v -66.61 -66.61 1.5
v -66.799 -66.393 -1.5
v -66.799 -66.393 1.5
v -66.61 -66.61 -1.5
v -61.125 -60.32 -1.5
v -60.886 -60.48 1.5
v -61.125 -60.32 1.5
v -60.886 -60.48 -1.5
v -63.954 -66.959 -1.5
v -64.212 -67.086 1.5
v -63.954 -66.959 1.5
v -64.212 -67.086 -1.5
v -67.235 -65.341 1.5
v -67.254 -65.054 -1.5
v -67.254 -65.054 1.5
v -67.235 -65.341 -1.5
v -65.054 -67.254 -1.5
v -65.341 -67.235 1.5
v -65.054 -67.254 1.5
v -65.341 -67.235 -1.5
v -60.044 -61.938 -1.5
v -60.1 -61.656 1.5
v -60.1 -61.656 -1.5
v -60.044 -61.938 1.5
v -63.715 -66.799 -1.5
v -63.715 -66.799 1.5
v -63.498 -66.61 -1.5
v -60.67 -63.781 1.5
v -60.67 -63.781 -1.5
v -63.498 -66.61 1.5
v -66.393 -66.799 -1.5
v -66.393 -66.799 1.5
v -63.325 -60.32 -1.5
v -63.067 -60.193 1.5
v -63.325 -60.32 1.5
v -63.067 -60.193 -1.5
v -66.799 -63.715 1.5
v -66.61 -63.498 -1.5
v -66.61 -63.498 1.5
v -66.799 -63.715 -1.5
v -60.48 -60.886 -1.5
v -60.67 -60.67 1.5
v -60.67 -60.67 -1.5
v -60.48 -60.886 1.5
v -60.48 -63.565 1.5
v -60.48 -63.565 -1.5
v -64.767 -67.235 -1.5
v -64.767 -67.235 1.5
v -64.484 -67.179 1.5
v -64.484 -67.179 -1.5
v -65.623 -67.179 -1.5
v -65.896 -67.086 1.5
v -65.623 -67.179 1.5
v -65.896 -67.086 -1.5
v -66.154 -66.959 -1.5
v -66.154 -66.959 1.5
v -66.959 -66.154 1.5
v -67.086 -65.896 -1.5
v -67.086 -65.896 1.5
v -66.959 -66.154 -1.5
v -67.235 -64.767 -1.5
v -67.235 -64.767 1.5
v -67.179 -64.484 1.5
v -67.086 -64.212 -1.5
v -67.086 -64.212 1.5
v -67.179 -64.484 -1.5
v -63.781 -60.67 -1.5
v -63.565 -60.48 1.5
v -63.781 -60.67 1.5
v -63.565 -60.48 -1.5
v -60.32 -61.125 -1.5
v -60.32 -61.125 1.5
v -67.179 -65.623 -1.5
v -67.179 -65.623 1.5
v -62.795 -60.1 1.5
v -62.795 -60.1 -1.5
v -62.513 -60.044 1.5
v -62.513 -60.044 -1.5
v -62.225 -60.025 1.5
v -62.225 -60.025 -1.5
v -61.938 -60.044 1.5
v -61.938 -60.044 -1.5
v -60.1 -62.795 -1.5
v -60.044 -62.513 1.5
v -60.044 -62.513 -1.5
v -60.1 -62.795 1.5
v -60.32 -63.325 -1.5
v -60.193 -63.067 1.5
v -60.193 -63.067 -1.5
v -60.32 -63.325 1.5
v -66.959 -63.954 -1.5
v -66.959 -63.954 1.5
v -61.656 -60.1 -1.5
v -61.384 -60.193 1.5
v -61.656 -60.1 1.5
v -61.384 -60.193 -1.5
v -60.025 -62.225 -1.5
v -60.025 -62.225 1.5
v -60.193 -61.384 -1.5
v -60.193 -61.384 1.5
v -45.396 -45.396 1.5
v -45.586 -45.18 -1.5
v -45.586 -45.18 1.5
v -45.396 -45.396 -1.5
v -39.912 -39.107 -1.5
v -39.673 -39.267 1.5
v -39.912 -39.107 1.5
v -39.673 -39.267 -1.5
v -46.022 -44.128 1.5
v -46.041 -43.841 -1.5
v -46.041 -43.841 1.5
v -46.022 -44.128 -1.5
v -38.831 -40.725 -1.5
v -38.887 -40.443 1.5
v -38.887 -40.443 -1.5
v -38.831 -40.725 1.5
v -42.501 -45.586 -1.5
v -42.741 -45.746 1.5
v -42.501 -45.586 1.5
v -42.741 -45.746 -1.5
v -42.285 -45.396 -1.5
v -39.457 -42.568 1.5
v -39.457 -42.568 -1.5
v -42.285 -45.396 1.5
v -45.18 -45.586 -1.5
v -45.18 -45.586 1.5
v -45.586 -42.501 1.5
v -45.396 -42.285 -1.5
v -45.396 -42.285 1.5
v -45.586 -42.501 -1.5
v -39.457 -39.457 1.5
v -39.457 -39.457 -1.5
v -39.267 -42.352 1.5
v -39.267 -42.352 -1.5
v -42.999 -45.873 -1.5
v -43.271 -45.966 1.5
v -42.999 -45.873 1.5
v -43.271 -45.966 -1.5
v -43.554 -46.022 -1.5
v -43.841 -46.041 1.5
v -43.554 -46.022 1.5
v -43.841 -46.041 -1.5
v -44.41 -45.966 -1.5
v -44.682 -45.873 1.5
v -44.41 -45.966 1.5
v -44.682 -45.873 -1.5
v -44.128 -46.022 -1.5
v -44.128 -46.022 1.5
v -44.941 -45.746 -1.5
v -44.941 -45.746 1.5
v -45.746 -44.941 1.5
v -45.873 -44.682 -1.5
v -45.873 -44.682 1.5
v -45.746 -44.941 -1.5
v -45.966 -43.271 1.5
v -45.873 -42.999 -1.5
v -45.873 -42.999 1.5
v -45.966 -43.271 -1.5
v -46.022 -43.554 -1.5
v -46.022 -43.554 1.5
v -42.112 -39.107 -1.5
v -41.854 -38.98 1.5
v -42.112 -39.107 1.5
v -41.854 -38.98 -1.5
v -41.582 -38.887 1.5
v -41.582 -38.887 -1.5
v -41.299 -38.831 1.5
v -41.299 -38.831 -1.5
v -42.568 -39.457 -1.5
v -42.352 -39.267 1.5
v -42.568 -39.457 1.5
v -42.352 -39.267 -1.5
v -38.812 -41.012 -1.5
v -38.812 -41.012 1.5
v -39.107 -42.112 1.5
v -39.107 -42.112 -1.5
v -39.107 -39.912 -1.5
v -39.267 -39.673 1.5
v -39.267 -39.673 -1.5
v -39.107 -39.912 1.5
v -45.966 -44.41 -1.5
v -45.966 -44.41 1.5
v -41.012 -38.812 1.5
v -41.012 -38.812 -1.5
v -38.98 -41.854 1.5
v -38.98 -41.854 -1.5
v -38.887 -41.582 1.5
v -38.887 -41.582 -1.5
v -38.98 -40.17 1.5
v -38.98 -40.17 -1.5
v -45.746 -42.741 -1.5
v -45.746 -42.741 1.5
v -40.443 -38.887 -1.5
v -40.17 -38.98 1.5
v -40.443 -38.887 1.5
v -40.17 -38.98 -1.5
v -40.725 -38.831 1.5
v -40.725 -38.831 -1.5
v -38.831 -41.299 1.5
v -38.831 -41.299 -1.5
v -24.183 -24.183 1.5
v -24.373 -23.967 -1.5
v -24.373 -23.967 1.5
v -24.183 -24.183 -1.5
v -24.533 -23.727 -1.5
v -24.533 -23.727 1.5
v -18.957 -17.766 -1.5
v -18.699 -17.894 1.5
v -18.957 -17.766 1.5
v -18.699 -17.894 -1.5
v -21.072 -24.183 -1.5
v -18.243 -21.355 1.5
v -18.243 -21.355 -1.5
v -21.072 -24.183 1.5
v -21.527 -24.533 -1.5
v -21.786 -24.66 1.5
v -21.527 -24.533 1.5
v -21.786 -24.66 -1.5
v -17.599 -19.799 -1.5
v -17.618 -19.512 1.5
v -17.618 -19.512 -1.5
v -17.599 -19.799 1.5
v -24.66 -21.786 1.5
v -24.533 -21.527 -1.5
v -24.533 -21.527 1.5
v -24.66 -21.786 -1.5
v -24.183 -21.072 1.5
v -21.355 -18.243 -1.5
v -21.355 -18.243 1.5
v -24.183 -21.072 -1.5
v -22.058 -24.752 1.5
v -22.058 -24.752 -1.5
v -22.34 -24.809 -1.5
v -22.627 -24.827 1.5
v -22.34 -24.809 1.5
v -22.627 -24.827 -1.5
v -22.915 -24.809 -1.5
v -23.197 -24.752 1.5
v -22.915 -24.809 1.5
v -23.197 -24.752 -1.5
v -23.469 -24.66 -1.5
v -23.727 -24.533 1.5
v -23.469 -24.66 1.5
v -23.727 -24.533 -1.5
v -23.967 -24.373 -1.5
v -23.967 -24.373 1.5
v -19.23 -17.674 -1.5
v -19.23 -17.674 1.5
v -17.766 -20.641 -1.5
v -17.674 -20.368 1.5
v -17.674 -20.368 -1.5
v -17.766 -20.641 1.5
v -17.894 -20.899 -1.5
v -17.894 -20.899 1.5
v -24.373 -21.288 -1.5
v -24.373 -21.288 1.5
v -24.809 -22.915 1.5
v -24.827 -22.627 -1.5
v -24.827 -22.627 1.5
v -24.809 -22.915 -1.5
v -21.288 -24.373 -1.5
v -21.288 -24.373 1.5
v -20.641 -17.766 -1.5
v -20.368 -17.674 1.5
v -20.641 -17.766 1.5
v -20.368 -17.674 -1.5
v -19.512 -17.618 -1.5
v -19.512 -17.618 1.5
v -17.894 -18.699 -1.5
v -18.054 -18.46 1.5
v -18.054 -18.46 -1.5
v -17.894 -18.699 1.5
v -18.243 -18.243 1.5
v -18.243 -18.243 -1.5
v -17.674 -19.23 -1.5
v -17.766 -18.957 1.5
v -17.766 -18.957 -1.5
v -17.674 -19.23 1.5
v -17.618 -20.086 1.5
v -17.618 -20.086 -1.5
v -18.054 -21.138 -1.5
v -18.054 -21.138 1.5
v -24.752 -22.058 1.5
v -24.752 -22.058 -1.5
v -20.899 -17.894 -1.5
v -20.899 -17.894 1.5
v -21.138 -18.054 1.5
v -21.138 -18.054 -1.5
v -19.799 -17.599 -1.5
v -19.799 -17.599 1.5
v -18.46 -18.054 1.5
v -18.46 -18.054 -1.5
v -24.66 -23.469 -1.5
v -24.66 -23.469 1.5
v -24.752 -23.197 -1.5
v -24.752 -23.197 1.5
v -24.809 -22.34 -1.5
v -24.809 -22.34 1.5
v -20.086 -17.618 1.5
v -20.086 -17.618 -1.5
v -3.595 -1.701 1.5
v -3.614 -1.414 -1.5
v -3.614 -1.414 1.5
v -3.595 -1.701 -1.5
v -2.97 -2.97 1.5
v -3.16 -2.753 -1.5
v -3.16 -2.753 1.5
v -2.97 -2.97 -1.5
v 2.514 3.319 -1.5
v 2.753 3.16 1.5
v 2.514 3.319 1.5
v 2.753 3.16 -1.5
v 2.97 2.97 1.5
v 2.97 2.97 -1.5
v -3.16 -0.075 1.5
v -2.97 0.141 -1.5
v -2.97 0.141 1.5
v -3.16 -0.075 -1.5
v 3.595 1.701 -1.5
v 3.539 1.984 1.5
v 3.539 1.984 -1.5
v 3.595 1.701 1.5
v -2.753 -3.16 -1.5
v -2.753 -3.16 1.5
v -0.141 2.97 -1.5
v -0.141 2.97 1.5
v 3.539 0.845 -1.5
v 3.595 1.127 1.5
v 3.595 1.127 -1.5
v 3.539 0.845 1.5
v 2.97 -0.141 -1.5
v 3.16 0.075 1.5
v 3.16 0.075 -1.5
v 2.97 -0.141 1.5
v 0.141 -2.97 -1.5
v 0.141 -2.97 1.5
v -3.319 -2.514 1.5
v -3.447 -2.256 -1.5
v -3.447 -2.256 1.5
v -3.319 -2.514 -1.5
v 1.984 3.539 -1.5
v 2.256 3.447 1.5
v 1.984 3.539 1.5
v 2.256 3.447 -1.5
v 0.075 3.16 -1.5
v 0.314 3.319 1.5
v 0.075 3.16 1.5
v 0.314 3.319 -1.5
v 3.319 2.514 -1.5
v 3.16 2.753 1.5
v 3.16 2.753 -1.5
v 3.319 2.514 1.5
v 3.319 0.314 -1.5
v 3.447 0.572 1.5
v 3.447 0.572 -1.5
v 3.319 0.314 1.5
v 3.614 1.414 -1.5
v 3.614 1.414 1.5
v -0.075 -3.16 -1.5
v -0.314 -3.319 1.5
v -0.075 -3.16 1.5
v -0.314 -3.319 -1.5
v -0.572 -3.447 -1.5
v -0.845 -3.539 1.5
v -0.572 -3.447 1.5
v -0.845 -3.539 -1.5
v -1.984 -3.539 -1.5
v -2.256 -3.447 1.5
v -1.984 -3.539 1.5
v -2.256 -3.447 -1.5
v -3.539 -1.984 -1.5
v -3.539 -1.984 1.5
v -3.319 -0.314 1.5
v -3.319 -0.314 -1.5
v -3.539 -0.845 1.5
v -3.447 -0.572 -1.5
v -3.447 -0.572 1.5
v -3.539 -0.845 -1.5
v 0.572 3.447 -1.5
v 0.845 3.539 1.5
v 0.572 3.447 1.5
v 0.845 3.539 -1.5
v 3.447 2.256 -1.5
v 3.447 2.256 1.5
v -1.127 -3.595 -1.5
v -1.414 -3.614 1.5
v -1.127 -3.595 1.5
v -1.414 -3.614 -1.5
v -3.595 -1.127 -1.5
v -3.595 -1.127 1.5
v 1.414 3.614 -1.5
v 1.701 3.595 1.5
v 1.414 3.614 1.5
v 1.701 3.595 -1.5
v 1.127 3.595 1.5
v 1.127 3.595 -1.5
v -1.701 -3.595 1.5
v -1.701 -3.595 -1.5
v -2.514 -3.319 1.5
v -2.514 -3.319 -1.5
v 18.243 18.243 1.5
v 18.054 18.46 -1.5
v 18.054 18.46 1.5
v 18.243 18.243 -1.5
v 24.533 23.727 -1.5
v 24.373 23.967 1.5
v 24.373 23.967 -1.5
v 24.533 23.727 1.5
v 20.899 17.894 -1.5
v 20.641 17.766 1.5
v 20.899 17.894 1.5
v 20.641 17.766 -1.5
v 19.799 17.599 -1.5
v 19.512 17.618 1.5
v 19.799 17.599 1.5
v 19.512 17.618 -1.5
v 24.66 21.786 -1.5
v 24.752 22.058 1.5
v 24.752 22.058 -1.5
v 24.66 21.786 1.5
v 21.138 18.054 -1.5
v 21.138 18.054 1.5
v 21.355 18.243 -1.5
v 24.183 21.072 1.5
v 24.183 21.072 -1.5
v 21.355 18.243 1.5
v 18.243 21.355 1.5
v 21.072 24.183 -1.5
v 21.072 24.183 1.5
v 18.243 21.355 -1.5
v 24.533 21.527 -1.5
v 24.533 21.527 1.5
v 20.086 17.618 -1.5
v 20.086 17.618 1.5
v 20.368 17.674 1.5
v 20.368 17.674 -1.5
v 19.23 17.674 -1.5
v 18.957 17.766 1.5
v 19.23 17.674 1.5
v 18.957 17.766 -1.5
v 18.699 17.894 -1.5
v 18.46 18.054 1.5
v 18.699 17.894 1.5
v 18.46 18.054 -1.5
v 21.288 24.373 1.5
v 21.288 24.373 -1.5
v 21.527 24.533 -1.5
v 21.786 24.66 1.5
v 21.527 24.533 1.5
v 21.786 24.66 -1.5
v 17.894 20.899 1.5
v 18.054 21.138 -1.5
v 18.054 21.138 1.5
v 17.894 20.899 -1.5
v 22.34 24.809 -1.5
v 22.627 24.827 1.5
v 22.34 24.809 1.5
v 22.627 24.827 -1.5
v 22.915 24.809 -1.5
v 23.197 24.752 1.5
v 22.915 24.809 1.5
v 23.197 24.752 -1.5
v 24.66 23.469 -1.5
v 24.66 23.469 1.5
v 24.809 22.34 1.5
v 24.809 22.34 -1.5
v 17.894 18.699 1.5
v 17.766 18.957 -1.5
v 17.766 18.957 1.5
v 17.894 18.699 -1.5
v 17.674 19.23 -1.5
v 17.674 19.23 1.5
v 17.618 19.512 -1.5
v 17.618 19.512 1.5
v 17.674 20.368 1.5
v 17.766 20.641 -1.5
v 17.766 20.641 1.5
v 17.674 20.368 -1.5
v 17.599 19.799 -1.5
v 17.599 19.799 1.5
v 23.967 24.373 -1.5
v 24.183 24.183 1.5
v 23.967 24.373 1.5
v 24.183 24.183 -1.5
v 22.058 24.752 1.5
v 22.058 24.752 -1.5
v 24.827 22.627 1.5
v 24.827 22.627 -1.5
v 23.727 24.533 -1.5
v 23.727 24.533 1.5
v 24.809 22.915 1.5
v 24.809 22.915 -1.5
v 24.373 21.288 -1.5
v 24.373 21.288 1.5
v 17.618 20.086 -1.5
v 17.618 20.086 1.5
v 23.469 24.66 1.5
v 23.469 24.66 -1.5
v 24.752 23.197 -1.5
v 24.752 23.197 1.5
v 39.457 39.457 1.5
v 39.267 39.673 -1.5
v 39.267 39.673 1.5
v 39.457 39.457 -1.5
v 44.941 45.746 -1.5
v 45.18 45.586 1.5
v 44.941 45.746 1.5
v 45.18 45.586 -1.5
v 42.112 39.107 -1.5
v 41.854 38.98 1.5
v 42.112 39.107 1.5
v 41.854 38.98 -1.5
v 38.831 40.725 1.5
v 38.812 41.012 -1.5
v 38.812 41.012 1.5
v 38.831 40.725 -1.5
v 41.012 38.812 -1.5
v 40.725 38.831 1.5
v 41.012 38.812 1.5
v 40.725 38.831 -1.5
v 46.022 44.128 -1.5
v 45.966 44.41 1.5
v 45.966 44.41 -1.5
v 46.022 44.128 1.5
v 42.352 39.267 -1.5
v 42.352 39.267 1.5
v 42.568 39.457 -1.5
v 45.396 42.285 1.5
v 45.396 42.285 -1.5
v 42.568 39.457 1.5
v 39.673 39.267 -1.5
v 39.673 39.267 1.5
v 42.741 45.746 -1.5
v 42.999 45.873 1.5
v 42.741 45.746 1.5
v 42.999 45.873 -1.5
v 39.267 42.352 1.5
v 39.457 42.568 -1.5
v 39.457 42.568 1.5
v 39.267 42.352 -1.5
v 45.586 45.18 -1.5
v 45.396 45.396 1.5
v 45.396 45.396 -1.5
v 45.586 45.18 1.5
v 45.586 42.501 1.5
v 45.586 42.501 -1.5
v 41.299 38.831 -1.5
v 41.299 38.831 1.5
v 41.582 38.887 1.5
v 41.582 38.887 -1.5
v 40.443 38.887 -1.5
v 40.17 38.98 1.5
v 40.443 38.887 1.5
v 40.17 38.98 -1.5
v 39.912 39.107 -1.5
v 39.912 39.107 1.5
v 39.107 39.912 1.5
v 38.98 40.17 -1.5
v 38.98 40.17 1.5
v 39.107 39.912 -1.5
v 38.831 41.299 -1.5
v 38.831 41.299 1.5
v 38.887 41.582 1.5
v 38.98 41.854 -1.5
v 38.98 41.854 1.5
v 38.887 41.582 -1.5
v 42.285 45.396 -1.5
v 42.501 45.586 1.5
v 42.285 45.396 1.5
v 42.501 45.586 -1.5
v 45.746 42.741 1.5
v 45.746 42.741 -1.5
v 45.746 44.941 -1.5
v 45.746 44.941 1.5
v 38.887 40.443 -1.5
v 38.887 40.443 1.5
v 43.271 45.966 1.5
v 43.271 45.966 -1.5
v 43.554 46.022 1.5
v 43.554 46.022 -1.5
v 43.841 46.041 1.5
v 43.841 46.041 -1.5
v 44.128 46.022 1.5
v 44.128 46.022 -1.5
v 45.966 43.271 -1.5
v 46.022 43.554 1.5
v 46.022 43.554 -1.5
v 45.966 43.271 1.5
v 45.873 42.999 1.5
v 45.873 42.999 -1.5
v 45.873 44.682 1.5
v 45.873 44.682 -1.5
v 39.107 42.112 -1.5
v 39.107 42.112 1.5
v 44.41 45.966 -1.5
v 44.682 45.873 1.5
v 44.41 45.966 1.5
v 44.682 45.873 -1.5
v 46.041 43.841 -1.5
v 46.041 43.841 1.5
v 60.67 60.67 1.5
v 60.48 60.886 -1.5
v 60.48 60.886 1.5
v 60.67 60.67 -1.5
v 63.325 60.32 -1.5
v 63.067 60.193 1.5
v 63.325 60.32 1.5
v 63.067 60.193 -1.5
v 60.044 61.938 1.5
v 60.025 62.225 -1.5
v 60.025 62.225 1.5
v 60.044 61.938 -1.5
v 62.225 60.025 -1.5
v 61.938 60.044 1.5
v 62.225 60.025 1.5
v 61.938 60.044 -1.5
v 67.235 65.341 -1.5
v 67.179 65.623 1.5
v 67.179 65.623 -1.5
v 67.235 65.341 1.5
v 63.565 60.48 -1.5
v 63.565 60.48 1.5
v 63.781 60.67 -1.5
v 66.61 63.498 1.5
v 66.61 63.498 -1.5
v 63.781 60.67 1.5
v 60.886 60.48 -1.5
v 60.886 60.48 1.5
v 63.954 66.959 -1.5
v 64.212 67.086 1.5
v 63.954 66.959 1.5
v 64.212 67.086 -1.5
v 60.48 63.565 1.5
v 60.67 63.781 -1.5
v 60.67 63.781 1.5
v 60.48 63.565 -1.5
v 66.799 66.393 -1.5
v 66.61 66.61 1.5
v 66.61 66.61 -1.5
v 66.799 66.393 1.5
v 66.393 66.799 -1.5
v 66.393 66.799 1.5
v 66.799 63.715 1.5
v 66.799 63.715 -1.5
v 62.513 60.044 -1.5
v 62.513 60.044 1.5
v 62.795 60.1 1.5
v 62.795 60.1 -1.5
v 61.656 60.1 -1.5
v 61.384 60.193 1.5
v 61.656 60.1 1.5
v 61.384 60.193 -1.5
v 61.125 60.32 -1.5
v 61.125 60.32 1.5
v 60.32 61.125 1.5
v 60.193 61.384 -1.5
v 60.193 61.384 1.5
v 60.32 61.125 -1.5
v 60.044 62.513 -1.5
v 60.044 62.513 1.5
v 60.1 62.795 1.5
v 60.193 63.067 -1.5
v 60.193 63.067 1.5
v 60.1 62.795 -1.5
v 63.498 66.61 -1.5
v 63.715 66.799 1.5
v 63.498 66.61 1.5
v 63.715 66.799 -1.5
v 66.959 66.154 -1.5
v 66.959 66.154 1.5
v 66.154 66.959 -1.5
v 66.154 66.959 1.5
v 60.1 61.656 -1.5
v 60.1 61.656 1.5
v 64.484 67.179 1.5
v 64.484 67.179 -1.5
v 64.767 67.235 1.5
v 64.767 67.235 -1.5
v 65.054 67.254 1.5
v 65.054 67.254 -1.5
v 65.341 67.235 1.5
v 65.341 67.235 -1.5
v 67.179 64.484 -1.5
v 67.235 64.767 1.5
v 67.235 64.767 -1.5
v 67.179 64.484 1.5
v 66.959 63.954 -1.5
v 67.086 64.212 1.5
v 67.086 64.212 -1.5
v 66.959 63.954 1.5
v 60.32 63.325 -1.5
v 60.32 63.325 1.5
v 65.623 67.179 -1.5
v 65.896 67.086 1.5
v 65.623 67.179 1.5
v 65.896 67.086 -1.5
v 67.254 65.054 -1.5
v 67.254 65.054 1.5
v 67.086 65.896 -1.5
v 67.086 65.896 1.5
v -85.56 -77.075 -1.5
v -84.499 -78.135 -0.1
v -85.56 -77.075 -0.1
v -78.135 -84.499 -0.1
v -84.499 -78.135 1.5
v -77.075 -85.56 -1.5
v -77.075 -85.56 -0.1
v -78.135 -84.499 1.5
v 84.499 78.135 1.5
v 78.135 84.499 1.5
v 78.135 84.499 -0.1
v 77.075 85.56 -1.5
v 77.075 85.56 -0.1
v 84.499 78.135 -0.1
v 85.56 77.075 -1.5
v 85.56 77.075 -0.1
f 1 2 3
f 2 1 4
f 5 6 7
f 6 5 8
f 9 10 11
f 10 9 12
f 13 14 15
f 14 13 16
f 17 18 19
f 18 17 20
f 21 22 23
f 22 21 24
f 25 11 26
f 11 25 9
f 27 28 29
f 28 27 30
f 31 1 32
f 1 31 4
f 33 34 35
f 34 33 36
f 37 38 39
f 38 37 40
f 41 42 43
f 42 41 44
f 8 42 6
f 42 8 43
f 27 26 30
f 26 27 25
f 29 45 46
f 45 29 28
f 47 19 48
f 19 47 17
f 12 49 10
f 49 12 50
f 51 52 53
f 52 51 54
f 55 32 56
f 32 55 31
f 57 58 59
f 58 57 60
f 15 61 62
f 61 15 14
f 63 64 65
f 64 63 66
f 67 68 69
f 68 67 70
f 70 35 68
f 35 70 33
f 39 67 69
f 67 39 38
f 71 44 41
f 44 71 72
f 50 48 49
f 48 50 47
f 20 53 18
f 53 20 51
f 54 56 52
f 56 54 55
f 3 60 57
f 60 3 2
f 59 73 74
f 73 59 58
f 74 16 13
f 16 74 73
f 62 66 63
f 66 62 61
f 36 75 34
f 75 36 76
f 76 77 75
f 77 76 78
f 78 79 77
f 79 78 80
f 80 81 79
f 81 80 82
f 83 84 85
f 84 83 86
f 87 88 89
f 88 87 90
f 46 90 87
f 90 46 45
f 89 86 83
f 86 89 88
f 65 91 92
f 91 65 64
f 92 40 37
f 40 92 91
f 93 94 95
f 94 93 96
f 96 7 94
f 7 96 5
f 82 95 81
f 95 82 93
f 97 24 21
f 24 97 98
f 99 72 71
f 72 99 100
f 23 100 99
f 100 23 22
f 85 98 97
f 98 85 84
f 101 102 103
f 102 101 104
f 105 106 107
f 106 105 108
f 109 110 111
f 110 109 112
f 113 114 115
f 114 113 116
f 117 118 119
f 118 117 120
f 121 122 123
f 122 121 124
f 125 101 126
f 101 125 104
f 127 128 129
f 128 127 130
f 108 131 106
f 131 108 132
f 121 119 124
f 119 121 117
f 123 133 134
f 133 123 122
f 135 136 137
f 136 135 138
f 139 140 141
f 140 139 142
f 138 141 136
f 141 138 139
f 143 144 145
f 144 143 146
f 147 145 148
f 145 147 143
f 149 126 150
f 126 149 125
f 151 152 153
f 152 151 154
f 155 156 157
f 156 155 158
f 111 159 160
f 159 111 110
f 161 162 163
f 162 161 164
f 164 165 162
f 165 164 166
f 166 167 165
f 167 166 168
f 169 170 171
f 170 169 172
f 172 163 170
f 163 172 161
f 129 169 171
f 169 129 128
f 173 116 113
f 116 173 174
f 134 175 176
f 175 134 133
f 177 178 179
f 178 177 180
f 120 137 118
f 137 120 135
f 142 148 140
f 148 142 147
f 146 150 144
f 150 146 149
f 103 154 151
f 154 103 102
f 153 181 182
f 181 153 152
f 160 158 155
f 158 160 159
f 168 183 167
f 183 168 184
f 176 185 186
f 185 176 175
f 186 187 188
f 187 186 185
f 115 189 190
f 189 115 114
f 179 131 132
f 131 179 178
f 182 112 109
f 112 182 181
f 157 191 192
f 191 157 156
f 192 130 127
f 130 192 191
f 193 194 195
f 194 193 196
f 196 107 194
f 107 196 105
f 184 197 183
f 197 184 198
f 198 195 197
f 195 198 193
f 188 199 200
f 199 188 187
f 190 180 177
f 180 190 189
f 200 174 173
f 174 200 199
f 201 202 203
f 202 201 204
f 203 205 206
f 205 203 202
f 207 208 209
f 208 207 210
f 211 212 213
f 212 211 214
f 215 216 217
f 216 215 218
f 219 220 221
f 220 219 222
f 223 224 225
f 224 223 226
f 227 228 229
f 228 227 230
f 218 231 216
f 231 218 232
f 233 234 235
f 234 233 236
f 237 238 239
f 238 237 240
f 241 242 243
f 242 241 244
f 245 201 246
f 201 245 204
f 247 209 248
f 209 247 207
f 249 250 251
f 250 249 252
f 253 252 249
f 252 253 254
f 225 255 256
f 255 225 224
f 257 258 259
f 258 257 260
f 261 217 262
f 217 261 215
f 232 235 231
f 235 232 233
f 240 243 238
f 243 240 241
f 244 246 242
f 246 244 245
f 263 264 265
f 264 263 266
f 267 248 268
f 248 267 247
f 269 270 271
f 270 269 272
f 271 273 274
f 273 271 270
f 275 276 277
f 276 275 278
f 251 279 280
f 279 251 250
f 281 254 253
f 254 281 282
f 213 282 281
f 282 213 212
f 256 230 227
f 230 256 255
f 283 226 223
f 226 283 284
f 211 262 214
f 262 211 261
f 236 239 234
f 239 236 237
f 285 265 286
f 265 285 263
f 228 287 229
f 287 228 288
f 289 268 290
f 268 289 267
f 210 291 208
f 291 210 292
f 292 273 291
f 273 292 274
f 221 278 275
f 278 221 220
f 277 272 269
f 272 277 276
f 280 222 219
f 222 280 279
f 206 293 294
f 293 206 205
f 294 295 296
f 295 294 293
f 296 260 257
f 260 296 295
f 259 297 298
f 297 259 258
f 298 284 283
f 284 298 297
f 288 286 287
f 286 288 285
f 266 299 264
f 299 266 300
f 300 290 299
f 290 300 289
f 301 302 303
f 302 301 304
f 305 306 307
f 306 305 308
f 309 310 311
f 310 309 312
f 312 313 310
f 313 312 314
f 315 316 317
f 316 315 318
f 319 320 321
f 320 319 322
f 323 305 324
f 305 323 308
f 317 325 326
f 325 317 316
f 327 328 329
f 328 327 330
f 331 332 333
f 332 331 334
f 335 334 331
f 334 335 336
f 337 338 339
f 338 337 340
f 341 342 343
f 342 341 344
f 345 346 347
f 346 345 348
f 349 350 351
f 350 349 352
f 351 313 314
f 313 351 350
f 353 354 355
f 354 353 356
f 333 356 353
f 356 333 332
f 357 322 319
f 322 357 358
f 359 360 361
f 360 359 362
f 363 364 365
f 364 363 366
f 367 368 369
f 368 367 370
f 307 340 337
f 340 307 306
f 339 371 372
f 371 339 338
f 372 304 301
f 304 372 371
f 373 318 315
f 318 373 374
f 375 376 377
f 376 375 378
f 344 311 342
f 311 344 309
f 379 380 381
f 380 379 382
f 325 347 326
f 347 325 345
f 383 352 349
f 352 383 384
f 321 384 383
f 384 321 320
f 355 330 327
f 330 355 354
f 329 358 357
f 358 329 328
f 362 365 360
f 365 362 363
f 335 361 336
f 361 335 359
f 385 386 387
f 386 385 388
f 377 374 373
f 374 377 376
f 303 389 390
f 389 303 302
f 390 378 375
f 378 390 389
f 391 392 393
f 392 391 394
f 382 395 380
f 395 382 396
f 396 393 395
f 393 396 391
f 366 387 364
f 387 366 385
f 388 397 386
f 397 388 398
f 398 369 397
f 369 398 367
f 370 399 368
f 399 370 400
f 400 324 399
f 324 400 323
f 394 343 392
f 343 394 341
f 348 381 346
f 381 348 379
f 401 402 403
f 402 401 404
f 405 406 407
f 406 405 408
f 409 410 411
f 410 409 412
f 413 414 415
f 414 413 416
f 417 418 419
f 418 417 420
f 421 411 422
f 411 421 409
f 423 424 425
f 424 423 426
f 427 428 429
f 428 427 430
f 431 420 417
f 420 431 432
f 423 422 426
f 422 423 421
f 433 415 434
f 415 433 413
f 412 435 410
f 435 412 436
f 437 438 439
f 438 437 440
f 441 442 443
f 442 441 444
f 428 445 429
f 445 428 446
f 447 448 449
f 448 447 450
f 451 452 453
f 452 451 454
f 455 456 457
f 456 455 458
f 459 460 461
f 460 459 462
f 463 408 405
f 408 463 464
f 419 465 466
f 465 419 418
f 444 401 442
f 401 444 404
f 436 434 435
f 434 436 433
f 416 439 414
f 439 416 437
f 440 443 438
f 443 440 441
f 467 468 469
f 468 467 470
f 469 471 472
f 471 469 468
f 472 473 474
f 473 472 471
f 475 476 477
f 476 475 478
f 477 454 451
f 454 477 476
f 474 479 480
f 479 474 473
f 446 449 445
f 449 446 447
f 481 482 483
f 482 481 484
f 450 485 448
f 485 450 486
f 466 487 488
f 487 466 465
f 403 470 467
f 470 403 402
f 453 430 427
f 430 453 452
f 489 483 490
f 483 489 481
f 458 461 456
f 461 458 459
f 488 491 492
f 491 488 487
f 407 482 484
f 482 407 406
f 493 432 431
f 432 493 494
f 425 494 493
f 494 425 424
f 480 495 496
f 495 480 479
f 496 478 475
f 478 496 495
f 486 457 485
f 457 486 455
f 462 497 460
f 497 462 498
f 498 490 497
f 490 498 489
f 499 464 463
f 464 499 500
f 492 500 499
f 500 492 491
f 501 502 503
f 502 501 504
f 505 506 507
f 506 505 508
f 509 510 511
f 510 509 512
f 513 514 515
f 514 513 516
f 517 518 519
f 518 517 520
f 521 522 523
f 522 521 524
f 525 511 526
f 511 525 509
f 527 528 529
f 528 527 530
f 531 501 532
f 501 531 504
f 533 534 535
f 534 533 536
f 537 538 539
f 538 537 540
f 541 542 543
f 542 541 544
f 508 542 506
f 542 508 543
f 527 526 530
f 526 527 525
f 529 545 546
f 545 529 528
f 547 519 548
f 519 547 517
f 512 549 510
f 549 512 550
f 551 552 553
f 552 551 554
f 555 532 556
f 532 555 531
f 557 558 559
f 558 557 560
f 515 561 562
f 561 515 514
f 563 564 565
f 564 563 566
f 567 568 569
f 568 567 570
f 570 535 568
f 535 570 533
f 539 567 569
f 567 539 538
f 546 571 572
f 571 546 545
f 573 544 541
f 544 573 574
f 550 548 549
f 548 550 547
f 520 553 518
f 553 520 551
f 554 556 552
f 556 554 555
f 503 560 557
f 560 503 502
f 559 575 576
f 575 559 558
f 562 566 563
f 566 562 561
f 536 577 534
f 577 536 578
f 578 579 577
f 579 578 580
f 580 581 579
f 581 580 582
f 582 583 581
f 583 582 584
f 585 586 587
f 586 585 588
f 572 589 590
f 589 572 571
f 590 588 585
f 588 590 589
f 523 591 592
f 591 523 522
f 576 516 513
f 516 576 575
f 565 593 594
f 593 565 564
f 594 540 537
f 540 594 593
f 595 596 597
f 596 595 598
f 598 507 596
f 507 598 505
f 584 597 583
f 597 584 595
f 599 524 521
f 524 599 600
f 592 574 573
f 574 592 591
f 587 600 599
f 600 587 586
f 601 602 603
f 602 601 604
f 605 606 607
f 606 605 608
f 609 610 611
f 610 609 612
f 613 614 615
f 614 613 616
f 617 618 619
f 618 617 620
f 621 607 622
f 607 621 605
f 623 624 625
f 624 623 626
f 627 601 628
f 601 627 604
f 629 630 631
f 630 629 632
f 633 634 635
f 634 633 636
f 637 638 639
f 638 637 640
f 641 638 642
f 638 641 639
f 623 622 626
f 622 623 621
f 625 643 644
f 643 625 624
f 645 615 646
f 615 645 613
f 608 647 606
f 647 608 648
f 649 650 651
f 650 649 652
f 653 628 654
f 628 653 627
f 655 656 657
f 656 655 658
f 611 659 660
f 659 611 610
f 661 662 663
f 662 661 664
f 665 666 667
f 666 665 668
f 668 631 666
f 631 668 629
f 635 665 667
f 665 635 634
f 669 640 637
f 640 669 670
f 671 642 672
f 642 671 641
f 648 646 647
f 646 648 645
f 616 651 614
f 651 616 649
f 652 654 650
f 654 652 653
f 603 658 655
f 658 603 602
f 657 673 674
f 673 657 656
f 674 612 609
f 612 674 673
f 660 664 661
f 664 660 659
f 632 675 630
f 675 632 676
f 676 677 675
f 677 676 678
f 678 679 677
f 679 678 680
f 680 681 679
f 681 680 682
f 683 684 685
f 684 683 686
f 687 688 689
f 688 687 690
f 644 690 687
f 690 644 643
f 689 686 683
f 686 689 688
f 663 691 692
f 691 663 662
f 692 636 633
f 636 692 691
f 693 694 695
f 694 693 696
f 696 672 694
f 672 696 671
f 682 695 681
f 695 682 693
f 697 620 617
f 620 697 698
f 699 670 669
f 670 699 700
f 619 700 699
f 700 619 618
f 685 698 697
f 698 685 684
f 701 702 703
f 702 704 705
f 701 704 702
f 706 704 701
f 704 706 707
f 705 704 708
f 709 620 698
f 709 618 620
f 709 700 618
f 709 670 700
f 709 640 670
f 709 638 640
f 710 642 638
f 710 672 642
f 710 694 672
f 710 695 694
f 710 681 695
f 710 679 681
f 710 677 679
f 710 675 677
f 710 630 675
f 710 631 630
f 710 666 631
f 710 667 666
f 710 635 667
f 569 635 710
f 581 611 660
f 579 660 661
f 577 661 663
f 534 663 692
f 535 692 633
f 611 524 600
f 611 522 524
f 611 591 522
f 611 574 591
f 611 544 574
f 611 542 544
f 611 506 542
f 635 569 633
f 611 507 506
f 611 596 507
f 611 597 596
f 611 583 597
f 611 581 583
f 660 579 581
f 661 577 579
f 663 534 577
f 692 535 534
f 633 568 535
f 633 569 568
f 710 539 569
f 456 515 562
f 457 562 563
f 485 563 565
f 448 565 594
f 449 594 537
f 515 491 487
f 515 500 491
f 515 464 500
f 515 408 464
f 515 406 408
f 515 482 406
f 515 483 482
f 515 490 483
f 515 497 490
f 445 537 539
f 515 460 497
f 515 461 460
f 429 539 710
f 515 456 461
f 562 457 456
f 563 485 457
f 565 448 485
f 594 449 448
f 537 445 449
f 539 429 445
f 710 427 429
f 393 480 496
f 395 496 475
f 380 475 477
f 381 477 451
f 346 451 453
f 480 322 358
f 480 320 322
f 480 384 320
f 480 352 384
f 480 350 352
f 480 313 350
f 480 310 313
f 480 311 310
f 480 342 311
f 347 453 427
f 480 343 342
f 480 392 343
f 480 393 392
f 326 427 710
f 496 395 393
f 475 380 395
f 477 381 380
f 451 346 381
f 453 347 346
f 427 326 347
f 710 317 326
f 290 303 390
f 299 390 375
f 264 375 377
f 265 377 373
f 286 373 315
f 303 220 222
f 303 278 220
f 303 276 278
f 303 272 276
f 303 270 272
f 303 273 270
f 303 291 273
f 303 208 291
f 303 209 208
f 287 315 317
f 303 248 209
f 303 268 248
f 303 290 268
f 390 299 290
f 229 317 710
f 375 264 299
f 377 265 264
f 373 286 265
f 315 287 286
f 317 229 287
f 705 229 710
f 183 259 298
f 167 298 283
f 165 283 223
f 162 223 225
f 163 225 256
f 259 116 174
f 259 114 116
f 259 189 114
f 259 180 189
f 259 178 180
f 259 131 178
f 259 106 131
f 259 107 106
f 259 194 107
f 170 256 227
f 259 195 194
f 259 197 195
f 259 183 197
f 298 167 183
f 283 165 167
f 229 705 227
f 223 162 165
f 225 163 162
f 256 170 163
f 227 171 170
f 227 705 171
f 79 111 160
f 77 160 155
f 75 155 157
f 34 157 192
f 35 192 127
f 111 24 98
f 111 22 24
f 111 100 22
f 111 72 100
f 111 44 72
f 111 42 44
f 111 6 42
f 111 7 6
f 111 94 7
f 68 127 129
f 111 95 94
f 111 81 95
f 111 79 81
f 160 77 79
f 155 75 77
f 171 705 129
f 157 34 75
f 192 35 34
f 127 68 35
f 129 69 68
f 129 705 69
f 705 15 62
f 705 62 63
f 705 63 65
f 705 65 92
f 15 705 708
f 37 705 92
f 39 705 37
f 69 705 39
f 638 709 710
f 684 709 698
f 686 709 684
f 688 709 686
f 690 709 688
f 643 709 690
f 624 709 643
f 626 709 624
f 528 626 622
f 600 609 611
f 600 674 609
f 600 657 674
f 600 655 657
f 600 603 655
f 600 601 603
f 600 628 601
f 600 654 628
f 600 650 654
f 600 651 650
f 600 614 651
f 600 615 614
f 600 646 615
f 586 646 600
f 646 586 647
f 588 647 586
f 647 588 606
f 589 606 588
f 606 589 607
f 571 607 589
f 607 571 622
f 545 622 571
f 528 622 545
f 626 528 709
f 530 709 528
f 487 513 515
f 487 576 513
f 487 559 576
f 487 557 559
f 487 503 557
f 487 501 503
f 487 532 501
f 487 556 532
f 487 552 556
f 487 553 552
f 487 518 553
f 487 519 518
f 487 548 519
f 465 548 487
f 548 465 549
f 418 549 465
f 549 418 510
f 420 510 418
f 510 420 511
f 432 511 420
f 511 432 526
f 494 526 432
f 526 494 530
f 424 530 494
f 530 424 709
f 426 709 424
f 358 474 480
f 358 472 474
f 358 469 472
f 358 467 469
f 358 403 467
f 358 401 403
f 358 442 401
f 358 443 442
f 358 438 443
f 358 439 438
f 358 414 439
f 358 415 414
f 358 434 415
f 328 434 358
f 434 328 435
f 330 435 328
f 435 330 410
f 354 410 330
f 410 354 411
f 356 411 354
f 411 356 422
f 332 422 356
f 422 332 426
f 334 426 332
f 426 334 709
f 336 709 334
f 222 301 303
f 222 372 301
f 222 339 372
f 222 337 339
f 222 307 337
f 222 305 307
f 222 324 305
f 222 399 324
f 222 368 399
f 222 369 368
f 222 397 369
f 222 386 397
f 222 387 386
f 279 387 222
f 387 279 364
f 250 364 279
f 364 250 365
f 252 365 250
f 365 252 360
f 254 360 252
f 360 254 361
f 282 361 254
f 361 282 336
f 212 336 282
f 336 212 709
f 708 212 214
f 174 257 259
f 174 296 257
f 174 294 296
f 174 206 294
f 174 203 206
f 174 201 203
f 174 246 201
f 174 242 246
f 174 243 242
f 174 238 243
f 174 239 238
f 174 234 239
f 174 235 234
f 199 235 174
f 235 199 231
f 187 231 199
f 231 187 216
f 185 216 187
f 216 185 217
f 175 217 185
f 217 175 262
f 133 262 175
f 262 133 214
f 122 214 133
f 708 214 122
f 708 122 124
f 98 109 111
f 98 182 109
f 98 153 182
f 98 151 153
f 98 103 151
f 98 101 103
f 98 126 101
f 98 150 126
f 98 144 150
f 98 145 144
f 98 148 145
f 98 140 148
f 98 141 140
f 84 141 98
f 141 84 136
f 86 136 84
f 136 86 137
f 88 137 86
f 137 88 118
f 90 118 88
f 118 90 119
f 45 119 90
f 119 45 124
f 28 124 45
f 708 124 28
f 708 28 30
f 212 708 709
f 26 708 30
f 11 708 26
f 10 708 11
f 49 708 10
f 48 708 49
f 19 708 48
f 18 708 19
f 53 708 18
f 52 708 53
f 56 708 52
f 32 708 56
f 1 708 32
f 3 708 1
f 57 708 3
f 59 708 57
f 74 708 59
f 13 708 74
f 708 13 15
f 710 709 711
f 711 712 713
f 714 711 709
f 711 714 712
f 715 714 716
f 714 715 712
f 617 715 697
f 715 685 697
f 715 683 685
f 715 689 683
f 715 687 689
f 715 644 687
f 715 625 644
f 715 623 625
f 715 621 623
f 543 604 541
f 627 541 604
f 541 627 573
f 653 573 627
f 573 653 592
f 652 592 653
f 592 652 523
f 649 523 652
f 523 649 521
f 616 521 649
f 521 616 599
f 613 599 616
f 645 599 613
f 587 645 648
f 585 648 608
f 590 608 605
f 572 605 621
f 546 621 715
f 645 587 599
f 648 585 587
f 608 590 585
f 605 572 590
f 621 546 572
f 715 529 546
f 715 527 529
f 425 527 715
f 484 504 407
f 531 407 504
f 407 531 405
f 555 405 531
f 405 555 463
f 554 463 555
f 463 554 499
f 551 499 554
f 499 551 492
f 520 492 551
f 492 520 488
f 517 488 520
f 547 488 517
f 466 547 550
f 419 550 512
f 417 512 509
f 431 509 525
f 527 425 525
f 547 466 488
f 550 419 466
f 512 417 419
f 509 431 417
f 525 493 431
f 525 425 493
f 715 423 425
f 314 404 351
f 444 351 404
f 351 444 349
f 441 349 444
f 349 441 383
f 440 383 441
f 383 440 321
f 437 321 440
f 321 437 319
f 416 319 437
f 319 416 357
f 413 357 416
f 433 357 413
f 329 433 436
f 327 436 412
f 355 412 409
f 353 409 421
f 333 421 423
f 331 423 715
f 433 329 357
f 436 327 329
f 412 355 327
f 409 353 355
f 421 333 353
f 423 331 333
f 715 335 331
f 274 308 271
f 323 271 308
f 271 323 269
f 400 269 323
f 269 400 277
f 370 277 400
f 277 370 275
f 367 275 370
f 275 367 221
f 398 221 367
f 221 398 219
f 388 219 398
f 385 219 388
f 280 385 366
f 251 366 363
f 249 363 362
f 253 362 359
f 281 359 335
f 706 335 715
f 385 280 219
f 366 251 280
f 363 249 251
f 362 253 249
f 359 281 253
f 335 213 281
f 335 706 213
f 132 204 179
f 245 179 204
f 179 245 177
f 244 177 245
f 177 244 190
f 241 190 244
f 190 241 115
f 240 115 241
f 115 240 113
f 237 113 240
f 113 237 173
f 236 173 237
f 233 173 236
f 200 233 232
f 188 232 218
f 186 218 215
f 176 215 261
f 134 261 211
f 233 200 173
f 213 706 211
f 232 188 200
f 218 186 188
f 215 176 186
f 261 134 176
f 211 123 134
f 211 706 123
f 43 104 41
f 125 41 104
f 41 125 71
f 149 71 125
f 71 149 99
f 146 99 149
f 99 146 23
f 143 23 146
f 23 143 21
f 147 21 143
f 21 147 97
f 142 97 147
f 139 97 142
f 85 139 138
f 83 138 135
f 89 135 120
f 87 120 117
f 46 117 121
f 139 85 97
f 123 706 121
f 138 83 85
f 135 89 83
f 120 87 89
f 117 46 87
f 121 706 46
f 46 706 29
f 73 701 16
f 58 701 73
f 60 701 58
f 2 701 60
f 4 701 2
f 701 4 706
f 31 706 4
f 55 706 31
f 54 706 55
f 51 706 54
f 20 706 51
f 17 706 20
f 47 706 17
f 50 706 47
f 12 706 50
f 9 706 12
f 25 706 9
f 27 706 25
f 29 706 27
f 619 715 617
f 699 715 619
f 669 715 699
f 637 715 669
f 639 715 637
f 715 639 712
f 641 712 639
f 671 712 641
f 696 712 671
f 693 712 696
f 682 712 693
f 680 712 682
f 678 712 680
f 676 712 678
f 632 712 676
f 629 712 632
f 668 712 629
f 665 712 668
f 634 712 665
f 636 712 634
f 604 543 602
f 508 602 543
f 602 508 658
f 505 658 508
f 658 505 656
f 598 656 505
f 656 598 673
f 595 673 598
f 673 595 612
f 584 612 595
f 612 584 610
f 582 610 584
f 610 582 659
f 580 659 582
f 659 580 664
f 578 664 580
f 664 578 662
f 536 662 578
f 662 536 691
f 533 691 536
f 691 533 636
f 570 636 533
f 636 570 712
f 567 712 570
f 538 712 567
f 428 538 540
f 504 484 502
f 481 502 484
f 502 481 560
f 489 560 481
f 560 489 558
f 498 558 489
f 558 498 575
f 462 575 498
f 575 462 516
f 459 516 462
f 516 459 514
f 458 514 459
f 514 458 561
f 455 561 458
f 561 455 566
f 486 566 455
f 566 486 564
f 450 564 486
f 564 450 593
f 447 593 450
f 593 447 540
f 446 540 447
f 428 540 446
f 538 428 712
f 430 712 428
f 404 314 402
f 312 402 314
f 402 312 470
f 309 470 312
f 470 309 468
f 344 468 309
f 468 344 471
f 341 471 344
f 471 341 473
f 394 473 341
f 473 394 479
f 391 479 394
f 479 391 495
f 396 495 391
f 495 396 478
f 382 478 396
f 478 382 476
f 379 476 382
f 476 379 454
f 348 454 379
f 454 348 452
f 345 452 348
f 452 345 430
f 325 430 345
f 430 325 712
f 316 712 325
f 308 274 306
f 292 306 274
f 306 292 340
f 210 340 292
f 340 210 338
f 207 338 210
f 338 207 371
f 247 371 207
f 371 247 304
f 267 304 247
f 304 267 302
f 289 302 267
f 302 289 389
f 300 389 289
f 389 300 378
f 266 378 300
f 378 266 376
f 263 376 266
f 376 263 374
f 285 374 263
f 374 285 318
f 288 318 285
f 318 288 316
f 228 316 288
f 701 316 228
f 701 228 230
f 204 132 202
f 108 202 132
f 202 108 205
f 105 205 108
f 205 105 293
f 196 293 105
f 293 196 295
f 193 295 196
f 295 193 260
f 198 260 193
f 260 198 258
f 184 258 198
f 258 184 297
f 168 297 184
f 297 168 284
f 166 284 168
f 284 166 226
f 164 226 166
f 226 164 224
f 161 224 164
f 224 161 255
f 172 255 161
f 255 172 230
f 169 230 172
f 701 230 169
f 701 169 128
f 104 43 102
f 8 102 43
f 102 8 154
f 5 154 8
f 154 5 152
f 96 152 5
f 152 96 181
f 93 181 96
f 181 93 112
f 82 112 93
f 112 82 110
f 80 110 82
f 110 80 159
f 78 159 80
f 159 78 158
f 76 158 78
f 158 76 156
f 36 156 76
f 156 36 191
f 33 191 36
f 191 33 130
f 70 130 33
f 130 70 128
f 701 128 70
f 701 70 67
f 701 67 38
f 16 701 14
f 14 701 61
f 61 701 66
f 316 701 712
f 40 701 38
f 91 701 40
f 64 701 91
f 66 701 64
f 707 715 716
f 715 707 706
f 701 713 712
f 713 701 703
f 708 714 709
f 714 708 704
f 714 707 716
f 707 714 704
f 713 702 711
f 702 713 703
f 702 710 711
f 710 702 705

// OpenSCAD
// FIX PCB ON MDF PLATE


DiaScrew = 4.4; //  bolts and nuts                 
Width=12;
Height=3.0;

Length=230;


rotate([0,0,45]) // print on bed of 20 cm


difference()
{    
    union()
    { 
   cube([Length,Width,Height],center=true);  
                   
    }

   // spare out
       translate([0,-Width/2,1.4])   // pcb height 1.6 + 1.2 mm cover
    cube([Length+1,3,Height],center=true);  // = 1.5mm cover
    
     // spare out
       translate([0,Width/2,1.4])   // pcb height 1.6 + 1.2 mm cover
    cube([Length+1,3,Height],center=true);  // = 1.5mm cover
   
    // fix
      for (x=[0:1:6])
    {  
  
  hull()
    {      
  translate([ -92+ x*30 ,0,0])           
  cylinder(h=Height+1,d=DiaScrew,center=true,$fn=48); 
         translate([ -88+ x*30 ,0,0])           
  cylinder(h=Height+1,d=DiaScrew,center=true,$fn=48); 
        
    }
       
        
        
    }
    
      
}
